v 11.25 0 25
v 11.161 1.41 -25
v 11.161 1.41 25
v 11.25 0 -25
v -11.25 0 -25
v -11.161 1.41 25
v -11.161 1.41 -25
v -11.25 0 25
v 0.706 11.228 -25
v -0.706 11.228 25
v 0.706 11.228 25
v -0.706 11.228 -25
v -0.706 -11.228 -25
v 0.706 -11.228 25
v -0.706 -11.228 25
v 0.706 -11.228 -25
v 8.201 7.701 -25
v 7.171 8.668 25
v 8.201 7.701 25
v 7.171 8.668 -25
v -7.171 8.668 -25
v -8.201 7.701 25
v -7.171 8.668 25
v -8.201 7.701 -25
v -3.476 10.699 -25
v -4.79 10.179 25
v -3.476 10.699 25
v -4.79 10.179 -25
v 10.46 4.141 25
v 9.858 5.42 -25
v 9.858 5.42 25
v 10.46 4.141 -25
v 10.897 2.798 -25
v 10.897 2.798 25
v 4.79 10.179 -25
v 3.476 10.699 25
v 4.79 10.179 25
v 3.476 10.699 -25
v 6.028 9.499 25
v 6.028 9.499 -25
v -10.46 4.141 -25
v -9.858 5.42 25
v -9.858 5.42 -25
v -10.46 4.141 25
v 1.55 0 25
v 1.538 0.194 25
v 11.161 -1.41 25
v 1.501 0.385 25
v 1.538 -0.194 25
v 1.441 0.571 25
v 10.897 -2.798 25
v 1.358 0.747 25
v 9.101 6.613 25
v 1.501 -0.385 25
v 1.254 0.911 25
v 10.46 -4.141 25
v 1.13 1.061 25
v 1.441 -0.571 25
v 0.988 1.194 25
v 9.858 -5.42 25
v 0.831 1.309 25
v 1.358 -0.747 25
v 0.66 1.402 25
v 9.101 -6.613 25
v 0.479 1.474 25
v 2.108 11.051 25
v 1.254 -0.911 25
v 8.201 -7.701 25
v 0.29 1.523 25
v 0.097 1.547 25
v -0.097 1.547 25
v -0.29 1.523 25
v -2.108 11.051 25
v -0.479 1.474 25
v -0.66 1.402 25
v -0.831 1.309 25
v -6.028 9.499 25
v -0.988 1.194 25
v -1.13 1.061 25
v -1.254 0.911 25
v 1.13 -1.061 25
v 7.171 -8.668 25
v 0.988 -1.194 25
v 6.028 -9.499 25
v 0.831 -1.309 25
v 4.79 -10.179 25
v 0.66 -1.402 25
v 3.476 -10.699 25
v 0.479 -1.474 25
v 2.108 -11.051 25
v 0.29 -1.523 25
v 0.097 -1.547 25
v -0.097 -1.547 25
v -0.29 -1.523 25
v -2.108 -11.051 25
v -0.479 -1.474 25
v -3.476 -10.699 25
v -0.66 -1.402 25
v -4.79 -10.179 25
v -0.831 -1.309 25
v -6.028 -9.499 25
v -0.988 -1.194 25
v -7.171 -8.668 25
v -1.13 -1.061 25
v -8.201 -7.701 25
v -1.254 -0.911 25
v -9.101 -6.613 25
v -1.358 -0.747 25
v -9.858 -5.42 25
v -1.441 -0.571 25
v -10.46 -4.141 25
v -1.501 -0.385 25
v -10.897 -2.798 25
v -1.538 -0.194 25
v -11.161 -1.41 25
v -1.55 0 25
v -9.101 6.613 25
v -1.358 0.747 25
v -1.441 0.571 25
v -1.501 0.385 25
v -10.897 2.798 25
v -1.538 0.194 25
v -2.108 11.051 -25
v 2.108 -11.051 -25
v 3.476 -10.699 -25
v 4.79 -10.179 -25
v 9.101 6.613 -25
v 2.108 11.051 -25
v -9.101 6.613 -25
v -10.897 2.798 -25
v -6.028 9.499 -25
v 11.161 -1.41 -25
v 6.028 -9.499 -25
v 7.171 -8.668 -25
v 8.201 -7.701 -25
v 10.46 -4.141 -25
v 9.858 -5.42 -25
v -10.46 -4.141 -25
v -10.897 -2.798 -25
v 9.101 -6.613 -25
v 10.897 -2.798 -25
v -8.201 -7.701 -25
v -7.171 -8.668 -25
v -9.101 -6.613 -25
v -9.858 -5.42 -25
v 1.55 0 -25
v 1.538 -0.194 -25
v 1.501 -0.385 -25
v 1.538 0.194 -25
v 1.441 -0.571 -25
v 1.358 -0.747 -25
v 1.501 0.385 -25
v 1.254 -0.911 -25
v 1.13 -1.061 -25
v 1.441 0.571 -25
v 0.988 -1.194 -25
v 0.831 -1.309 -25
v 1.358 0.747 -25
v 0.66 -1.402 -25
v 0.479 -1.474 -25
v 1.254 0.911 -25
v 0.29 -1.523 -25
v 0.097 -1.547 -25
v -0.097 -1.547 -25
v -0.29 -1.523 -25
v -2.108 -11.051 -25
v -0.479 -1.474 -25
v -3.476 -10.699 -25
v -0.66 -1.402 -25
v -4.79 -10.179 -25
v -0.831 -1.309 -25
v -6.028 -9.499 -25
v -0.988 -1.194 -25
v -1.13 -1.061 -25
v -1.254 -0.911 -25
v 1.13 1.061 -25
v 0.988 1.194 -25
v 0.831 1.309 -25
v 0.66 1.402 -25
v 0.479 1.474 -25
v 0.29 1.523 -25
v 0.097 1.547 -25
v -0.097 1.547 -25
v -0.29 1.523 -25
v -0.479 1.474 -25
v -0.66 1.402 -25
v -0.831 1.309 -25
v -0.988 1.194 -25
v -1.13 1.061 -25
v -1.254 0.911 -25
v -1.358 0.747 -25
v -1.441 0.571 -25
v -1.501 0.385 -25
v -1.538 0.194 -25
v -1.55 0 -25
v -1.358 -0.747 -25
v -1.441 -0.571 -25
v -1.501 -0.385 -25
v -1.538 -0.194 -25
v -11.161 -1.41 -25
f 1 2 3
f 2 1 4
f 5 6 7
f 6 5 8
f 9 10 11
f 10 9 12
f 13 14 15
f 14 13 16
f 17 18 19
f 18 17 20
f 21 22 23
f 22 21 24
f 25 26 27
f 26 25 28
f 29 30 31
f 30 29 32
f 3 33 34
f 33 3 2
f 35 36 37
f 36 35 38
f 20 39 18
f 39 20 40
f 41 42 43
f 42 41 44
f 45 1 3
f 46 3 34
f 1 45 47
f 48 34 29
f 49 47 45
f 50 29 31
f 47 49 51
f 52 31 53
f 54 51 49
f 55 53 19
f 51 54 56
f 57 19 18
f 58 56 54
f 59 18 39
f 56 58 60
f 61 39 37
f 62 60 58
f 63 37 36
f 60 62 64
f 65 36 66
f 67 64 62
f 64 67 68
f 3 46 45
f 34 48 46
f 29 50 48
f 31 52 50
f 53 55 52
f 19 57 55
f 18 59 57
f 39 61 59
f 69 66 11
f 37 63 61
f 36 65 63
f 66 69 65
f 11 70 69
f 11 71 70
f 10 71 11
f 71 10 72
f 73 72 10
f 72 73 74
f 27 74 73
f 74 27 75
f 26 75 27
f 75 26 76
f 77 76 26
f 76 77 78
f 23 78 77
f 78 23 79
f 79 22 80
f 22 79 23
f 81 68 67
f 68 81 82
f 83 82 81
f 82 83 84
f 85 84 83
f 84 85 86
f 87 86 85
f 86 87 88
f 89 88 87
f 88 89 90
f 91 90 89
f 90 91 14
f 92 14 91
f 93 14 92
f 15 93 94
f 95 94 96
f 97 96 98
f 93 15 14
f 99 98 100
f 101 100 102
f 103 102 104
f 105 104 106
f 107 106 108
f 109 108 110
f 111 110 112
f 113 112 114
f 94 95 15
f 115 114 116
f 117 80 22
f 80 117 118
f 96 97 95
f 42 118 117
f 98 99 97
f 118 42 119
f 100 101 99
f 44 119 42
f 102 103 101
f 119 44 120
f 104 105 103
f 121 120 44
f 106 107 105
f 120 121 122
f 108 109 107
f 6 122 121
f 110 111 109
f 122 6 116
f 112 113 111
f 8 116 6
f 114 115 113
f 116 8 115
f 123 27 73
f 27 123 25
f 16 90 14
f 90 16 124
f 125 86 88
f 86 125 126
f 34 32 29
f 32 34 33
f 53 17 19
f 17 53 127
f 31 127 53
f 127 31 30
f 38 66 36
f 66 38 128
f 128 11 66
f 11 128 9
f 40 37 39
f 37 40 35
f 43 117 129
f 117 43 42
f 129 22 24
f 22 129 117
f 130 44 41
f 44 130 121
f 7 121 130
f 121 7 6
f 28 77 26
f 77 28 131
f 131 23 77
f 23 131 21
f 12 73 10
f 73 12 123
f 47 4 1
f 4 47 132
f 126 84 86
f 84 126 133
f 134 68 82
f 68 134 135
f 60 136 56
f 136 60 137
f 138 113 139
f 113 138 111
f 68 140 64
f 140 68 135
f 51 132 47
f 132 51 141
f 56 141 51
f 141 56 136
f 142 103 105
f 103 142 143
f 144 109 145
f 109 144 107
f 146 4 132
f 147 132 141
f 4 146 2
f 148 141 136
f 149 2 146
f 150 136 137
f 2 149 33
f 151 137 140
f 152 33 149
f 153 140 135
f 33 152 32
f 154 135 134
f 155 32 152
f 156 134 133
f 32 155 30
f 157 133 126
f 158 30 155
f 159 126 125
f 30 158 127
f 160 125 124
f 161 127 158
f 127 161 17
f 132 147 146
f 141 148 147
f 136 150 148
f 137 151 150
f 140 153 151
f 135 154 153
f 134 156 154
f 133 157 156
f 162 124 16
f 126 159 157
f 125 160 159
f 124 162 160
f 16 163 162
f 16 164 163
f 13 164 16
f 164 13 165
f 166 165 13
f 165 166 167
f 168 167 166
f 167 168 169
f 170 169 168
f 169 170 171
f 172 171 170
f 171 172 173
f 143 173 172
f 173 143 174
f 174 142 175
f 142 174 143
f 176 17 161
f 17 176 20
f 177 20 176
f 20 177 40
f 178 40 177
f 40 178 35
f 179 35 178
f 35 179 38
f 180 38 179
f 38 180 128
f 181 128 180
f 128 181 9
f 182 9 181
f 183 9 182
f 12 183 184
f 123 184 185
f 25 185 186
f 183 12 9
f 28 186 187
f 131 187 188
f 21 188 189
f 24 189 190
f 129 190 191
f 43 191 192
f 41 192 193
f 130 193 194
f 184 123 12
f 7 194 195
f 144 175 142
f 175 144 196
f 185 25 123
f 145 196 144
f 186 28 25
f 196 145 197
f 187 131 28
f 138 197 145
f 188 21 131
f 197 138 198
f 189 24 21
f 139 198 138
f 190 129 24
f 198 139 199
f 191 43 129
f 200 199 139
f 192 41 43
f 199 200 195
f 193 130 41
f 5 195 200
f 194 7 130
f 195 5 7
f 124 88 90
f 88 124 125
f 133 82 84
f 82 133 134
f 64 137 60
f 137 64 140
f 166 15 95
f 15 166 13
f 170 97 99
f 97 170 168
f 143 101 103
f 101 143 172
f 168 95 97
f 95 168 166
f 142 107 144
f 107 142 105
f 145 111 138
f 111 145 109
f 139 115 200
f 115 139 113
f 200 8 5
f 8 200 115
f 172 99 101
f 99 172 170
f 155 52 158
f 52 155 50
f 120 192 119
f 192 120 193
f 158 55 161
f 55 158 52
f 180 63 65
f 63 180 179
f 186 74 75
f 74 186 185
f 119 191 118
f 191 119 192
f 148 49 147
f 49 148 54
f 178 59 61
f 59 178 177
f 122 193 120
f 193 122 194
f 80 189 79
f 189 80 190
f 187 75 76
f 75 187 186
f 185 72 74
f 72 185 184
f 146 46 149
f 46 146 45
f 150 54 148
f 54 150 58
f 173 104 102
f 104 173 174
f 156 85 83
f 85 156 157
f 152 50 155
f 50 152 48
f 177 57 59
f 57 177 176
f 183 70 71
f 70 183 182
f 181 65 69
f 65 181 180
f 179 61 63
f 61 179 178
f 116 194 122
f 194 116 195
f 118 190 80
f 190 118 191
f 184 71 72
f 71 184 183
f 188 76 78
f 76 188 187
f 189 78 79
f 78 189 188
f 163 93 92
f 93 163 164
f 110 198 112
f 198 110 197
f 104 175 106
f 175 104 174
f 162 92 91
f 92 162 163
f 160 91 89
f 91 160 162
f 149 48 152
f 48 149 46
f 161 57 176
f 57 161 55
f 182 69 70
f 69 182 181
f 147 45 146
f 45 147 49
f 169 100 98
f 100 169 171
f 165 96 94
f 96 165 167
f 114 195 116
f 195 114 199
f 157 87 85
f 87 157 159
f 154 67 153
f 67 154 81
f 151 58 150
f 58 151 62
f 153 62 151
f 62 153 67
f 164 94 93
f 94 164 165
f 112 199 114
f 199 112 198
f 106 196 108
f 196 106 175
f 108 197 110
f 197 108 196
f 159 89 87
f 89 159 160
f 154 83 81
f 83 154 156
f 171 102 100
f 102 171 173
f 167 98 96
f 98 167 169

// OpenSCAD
$fn = 50;


difference() {
	union() {
		translate(v = [0, 0, -25.0000000000]) {
			cylinder(h = 50, r = 11.2500000000);
		}
	}
	union() {
		translate(v = [0, 0, -100.0000000000]) {
			cylinder(h = 200, r = 1.5500000000);
		}
	}
}
